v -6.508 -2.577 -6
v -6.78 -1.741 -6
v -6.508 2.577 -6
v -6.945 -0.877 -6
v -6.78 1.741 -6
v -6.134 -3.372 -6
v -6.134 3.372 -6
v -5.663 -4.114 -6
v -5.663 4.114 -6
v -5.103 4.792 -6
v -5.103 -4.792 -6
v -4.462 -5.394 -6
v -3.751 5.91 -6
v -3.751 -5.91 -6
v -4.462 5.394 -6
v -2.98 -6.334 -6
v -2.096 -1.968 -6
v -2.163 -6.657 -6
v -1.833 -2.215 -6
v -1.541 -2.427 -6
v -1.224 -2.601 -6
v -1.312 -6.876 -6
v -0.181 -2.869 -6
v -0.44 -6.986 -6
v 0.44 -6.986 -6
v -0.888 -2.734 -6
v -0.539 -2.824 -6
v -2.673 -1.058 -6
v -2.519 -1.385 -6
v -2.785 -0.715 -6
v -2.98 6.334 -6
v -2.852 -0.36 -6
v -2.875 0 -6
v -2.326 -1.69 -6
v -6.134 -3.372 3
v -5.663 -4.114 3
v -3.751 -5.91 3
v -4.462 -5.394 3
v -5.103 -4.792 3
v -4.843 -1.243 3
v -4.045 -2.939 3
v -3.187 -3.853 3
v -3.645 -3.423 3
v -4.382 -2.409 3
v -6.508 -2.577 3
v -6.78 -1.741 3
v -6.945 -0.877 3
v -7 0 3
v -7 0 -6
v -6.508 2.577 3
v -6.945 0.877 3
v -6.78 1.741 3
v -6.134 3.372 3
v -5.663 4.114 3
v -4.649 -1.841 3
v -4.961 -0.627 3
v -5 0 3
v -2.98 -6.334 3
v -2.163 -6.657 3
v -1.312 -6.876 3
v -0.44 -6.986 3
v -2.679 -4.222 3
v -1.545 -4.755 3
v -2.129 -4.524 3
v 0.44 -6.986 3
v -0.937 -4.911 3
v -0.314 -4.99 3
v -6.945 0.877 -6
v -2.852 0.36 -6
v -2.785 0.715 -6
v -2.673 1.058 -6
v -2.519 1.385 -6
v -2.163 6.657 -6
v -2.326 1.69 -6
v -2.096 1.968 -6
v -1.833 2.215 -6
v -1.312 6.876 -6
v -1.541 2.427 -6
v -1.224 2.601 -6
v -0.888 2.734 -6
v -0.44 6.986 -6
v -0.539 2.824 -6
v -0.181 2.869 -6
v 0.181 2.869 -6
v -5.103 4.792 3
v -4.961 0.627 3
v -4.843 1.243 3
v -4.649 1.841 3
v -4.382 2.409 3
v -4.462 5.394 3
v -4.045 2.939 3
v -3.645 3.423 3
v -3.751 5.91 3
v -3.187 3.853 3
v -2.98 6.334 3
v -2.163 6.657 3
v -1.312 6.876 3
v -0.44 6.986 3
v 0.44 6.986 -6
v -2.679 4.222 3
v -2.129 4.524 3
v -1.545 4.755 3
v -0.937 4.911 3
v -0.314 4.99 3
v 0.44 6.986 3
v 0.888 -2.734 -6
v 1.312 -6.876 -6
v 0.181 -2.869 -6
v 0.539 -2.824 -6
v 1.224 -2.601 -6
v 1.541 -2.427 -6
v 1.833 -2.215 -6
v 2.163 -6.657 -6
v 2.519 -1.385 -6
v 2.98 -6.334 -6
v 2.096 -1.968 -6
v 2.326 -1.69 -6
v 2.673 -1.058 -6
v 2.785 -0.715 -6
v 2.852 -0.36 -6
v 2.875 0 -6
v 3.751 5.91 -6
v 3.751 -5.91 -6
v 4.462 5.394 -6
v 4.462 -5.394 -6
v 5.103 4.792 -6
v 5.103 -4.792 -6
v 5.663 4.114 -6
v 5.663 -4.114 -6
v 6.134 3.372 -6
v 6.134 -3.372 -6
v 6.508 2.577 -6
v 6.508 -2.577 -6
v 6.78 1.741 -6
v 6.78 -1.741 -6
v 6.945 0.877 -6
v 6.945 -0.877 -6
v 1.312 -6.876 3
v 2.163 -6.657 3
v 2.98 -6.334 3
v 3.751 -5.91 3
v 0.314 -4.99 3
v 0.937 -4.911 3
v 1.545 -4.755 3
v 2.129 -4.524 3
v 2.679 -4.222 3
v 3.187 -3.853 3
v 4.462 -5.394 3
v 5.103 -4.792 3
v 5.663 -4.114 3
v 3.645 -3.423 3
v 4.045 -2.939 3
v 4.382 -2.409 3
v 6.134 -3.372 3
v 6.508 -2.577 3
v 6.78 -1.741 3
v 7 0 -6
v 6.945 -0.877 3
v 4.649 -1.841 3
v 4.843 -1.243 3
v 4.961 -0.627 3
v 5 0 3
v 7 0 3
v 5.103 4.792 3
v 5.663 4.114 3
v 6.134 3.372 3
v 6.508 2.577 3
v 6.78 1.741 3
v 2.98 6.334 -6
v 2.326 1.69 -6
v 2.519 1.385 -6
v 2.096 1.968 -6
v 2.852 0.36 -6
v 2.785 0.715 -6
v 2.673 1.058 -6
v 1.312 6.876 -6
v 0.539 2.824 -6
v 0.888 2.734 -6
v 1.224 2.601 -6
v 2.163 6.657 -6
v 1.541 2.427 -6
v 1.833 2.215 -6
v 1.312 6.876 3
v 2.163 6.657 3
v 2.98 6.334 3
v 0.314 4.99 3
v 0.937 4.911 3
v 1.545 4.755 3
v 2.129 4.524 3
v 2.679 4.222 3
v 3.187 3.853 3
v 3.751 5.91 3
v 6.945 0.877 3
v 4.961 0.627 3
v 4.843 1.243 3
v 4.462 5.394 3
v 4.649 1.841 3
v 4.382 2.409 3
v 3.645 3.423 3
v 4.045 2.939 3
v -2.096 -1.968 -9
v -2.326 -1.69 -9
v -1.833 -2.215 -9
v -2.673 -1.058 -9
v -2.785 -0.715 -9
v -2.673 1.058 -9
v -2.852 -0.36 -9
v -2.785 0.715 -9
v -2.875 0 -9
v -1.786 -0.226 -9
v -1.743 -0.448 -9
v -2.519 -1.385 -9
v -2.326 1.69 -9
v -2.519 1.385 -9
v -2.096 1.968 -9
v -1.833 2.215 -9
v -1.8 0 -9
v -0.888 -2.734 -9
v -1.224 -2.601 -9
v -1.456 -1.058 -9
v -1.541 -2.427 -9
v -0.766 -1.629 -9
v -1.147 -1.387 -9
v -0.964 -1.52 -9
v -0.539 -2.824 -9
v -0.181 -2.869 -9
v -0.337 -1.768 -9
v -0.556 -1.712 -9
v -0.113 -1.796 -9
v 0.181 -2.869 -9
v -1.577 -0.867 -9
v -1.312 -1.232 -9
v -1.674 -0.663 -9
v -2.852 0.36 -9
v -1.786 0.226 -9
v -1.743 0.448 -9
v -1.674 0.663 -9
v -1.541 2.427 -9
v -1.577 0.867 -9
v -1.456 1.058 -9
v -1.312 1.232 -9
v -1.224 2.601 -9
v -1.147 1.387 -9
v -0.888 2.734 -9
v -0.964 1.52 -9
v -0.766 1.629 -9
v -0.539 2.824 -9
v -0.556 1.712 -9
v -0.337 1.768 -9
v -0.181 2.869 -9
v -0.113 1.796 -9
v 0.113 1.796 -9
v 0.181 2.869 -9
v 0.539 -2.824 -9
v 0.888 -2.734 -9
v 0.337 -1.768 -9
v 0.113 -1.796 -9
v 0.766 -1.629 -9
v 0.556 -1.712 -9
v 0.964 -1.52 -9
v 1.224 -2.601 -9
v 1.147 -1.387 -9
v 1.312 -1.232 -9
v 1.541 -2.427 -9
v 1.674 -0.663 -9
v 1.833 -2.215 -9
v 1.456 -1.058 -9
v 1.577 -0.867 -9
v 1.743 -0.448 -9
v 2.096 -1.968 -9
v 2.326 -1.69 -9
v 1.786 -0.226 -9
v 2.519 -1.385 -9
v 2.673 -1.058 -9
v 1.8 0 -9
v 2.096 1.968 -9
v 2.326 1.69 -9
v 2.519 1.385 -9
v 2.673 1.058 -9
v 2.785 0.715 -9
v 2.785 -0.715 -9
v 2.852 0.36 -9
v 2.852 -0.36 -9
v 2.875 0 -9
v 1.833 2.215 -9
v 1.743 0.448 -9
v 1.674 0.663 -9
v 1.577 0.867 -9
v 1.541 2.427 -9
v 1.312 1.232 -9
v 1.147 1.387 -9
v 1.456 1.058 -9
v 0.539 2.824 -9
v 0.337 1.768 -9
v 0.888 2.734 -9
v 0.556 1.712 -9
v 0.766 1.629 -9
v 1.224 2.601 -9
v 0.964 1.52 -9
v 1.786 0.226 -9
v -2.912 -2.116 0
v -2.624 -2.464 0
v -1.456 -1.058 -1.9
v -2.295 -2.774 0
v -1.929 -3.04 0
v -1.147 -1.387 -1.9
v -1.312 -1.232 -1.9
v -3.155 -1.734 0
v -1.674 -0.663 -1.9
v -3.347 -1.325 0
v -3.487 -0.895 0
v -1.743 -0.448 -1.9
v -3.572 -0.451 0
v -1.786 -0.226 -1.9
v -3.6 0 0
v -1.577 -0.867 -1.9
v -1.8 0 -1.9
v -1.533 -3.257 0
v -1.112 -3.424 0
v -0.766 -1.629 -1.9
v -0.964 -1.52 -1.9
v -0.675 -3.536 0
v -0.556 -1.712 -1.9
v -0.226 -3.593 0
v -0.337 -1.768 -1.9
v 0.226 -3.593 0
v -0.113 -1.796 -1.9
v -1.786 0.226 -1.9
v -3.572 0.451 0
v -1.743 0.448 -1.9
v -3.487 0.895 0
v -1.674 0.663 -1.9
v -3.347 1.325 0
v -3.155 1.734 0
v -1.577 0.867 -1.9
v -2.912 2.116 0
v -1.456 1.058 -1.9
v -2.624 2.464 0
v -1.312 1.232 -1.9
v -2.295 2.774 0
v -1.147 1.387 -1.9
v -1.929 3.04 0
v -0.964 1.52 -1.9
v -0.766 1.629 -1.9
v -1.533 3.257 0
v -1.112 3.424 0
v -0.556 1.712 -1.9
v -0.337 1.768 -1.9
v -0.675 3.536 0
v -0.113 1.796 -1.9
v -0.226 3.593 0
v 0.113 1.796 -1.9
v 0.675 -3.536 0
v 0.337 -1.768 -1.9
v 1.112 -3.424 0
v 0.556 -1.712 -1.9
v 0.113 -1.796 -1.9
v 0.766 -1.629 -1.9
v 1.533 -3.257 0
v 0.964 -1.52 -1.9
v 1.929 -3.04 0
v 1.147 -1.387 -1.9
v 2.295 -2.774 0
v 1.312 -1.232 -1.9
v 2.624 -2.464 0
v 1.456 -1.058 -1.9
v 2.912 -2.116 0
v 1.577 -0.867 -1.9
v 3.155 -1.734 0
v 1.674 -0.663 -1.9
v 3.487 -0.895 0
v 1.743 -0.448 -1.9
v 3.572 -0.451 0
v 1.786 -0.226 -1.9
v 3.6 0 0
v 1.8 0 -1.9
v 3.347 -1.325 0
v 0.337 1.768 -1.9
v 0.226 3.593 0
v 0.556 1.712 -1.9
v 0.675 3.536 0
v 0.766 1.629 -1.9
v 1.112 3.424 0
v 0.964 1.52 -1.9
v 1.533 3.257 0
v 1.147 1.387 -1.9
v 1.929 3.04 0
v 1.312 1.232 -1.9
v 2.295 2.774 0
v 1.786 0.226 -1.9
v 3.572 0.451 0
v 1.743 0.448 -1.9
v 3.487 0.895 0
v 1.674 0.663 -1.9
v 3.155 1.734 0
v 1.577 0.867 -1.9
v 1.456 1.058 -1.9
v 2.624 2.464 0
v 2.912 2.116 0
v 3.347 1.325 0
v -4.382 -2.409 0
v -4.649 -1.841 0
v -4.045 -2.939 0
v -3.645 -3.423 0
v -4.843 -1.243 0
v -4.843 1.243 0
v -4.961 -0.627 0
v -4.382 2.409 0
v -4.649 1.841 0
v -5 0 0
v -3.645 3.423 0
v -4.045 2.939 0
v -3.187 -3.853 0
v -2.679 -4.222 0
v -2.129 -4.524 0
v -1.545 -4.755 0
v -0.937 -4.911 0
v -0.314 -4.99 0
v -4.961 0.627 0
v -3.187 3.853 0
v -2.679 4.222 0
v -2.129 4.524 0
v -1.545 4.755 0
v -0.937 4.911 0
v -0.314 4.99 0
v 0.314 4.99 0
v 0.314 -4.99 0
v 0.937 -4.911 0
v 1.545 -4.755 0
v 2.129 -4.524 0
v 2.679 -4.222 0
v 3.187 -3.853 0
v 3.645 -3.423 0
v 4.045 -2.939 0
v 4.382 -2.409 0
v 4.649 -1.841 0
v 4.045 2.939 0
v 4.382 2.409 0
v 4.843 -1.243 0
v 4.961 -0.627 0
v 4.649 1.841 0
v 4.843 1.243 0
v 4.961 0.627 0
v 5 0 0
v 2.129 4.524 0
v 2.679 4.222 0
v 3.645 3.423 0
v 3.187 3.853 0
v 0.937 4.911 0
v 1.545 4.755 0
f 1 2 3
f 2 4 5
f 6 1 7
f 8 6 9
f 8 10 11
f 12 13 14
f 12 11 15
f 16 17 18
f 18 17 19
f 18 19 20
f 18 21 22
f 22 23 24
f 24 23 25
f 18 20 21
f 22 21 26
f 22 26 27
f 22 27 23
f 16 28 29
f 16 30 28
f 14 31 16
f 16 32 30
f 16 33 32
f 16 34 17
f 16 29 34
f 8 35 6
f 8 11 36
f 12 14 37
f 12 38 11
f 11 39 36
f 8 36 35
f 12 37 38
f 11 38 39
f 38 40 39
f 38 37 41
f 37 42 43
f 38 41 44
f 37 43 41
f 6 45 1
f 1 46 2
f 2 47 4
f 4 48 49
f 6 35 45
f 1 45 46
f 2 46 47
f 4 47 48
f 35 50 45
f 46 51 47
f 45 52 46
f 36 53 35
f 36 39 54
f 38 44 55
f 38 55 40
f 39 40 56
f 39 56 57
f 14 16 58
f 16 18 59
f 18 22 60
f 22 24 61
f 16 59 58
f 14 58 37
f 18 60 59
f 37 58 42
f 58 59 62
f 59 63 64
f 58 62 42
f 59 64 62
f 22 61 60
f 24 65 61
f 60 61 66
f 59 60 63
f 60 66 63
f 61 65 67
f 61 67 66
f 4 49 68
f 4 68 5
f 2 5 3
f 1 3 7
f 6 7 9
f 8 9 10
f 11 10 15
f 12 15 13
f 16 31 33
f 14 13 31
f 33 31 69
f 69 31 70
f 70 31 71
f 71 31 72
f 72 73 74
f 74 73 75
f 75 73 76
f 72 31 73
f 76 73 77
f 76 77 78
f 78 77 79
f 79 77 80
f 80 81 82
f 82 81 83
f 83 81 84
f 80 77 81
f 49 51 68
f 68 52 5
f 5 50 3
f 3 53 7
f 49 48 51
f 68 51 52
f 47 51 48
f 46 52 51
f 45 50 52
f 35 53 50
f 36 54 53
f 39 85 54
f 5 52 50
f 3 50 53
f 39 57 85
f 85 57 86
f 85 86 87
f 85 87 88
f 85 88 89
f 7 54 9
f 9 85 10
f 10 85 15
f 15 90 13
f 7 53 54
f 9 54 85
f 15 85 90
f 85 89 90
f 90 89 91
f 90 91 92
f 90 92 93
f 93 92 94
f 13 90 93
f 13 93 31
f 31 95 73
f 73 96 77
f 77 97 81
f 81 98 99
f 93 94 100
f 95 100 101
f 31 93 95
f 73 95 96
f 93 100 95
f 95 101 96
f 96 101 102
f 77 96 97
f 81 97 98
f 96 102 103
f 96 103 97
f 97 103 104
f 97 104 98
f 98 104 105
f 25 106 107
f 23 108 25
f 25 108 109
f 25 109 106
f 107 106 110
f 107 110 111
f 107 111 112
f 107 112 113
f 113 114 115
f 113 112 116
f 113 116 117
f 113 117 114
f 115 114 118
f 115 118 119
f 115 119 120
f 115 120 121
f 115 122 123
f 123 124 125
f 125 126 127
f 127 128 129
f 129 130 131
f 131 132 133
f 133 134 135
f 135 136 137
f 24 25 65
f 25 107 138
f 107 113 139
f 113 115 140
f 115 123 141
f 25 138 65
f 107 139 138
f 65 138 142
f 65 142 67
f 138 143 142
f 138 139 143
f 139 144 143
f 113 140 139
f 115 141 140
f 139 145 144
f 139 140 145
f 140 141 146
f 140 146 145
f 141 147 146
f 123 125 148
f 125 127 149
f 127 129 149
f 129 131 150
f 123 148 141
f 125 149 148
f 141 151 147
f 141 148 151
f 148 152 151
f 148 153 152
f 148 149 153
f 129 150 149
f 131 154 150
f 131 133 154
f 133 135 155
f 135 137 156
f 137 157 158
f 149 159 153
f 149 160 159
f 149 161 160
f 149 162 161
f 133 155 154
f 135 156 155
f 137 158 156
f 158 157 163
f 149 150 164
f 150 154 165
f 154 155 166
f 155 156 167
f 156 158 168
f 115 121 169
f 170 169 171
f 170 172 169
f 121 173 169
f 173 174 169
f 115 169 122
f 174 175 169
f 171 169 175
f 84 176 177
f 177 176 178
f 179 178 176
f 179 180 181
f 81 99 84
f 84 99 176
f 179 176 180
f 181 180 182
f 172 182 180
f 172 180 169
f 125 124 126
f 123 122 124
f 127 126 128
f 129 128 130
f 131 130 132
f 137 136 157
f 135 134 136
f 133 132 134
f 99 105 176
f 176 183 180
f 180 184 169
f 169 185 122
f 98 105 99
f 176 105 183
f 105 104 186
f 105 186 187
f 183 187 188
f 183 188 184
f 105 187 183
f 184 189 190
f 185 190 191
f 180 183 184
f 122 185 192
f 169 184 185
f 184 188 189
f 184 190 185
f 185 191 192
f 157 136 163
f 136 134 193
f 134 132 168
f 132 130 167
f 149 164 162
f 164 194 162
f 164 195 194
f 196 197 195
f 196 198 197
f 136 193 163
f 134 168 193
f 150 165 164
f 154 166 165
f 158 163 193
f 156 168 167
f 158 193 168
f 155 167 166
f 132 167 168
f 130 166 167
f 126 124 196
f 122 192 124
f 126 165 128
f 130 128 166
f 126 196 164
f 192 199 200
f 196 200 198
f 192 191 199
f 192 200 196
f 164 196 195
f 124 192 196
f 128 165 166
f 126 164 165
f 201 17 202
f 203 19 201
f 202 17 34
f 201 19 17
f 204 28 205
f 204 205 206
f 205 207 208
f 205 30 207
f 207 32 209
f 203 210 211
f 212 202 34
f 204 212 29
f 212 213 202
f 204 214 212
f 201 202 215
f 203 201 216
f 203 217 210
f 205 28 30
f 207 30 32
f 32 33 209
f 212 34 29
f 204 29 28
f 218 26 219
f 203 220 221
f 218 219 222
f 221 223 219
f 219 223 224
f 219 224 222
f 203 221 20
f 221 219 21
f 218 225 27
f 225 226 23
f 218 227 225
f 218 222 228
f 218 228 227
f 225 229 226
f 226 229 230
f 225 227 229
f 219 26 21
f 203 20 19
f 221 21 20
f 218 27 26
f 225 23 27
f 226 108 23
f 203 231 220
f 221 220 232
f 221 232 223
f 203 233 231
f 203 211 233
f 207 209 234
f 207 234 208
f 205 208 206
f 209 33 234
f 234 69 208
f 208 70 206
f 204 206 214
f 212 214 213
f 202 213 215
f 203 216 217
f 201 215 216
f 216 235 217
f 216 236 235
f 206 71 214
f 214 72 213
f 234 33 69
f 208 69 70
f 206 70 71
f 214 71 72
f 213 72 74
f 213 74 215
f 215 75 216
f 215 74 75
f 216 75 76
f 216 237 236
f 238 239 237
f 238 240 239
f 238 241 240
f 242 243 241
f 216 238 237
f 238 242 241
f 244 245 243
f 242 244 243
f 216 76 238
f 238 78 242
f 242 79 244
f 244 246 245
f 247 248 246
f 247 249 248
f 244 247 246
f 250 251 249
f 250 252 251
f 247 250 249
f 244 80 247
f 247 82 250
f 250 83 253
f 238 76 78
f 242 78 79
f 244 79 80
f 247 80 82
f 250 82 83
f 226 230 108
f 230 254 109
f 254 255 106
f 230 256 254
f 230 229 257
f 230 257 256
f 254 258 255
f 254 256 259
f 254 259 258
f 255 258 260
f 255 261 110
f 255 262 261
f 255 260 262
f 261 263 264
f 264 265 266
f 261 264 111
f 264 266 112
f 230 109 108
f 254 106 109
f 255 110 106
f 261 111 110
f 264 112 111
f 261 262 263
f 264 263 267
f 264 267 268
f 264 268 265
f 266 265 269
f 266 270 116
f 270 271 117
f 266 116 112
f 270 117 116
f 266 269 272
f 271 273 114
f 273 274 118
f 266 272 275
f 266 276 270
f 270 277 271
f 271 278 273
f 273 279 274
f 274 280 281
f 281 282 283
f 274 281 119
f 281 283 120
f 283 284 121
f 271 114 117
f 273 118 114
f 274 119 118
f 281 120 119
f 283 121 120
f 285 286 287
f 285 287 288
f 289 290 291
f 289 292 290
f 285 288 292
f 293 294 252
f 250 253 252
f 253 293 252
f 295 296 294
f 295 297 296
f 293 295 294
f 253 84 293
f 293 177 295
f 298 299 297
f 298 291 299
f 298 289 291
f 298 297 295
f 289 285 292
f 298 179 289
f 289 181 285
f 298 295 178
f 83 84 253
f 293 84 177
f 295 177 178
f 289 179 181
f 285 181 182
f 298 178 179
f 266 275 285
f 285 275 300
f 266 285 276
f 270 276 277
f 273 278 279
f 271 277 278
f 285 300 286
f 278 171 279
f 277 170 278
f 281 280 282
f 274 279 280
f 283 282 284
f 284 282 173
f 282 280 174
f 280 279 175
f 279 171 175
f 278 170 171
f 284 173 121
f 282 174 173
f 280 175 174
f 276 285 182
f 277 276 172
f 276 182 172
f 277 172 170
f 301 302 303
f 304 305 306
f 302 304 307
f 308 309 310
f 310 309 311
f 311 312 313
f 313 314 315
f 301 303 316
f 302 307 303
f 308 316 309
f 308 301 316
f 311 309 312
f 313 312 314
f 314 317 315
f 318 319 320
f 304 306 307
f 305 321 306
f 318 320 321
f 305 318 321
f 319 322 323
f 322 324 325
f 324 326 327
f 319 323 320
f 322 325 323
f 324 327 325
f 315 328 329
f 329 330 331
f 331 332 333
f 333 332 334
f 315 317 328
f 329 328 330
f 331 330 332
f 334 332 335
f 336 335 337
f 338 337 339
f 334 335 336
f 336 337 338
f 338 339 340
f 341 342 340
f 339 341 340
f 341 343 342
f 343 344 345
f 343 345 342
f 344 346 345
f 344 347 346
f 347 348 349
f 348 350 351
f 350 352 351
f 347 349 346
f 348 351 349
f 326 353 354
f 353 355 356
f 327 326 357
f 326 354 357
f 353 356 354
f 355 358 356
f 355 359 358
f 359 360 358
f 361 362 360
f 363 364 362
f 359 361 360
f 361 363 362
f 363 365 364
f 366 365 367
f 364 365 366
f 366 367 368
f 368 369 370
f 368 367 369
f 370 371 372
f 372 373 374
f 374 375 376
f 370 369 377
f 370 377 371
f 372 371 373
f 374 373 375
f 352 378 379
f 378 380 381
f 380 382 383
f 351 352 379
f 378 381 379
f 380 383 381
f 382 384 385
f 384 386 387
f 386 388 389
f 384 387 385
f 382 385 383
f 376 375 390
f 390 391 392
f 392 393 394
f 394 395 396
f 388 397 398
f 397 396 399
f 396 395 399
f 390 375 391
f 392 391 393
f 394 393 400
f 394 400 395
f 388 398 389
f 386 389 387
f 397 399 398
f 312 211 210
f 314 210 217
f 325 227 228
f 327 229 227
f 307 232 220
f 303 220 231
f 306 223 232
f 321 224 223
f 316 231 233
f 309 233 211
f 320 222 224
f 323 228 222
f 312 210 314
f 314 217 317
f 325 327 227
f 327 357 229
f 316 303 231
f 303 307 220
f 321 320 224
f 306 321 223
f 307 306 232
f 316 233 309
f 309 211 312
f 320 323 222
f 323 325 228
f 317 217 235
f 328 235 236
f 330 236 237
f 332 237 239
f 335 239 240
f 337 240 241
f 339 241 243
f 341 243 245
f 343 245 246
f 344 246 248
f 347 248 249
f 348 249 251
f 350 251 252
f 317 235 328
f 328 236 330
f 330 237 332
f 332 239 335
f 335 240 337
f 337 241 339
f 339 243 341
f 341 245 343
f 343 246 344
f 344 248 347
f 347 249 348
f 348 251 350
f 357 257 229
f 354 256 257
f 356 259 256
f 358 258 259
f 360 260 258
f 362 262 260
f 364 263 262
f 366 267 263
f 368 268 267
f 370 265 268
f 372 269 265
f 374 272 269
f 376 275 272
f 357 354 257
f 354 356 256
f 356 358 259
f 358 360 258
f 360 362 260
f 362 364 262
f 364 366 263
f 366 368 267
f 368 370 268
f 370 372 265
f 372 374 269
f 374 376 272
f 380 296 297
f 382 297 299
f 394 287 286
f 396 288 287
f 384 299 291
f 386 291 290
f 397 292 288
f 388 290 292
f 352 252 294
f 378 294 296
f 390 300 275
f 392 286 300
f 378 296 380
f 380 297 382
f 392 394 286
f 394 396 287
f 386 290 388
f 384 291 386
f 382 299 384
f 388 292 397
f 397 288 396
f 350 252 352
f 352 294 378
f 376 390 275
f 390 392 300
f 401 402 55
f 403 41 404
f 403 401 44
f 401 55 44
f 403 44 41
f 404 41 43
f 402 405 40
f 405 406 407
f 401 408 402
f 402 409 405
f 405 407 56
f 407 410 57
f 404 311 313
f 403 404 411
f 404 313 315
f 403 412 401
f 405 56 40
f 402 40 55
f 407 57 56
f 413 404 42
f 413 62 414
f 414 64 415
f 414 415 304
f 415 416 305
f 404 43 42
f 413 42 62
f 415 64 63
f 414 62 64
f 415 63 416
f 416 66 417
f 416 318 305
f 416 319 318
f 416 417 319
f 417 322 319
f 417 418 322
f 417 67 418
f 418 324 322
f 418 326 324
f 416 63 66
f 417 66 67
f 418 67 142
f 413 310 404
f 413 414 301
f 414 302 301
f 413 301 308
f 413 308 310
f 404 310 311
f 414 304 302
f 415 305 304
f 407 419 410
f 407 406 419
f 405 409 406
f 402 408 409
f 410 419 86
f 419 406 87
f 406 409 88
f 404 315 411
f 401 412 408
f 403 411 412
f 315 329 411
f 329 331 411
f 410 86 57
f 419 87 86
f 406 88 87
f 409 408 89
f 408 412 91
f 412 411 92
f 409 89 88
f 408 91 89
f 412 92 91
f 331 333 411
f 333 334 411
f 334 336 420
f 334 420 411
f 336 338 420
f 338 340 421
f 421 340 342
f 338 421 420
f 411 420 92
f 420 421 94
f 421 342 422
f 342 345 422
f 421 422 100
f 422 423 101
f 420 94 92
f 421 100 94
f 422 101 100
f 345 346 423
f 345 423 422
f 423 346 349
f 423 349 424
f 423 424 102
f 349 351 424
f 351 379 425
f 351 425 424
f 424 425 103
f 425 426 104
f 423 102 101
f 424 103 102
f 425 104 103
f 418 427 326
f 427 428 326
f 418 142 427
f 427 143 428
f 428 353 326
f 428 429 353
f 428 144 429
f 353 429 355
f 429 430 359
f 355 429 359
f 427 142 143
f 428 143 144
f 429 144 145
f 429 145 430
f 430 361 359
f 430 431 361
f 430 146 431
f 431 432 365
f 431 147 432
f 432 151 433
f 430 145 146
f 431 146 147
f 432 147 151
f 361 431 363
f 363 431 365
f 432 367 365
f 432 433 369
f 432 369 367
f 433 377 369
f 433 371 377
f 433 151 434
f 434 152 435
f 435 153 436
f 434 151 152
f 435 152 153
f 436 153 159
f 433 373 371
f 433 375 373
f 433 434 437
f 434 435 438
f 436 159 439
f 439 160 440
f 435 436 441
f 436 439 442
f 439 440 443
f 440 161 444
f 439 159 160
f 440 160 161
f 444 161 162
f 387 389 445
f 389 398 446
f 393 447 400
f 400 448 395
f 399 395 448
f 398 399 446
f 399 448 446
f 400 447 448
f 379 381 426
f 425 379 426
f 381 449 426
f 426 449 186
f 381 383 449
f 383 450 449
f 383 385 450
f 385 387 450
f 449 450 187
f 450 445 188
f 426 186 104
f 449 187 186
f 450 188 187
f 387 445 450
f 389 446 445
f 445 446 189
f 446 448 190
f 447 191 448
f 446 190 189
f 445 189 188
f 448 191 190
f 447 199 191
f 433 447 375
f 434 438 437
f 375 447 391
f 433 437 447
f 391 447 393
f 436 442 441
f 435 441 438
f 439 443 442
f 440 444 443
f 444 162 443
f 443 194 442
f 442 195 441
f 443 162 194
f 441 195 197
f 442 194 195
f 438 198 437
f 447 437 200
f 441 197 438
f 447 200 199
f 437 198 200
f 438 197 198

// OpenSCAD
$fn = 50;

difference() {
	union() {
		translate(v = [0, 0, -6.0]) {
			cylinder(h = 9, r = 7.0);
		}
		#translate(v = [0, 0, -9.0]) {
			cylinder(h = 9, r = 2.875);
		}
	}
	union() {
		translate(v = [0, 0, 0]) {
			rotate(a = [0, 0, 0]) {
				difference() {
					union() {
						translate(v = [0, 0, -9.0]) {
							cylinder(h = 9, r = 1.5);
						}
						translate(v = [0, 0, -1.9]) {
							cylinder(h = 1.9, r1 = 1.8, r2 = 3.6);
						}
						translate(v = [0, 0, -9.0]) {
							cylinder(h = 9, r = 1.8);
						}
						translate(v = [0, 0, -9.0]) {
							cylinder(h = 9, r = 1.5);
						}
					}
					union();
				}
			}
		}
		#cylinder(h = 3, r = 5.0);
	}
}
